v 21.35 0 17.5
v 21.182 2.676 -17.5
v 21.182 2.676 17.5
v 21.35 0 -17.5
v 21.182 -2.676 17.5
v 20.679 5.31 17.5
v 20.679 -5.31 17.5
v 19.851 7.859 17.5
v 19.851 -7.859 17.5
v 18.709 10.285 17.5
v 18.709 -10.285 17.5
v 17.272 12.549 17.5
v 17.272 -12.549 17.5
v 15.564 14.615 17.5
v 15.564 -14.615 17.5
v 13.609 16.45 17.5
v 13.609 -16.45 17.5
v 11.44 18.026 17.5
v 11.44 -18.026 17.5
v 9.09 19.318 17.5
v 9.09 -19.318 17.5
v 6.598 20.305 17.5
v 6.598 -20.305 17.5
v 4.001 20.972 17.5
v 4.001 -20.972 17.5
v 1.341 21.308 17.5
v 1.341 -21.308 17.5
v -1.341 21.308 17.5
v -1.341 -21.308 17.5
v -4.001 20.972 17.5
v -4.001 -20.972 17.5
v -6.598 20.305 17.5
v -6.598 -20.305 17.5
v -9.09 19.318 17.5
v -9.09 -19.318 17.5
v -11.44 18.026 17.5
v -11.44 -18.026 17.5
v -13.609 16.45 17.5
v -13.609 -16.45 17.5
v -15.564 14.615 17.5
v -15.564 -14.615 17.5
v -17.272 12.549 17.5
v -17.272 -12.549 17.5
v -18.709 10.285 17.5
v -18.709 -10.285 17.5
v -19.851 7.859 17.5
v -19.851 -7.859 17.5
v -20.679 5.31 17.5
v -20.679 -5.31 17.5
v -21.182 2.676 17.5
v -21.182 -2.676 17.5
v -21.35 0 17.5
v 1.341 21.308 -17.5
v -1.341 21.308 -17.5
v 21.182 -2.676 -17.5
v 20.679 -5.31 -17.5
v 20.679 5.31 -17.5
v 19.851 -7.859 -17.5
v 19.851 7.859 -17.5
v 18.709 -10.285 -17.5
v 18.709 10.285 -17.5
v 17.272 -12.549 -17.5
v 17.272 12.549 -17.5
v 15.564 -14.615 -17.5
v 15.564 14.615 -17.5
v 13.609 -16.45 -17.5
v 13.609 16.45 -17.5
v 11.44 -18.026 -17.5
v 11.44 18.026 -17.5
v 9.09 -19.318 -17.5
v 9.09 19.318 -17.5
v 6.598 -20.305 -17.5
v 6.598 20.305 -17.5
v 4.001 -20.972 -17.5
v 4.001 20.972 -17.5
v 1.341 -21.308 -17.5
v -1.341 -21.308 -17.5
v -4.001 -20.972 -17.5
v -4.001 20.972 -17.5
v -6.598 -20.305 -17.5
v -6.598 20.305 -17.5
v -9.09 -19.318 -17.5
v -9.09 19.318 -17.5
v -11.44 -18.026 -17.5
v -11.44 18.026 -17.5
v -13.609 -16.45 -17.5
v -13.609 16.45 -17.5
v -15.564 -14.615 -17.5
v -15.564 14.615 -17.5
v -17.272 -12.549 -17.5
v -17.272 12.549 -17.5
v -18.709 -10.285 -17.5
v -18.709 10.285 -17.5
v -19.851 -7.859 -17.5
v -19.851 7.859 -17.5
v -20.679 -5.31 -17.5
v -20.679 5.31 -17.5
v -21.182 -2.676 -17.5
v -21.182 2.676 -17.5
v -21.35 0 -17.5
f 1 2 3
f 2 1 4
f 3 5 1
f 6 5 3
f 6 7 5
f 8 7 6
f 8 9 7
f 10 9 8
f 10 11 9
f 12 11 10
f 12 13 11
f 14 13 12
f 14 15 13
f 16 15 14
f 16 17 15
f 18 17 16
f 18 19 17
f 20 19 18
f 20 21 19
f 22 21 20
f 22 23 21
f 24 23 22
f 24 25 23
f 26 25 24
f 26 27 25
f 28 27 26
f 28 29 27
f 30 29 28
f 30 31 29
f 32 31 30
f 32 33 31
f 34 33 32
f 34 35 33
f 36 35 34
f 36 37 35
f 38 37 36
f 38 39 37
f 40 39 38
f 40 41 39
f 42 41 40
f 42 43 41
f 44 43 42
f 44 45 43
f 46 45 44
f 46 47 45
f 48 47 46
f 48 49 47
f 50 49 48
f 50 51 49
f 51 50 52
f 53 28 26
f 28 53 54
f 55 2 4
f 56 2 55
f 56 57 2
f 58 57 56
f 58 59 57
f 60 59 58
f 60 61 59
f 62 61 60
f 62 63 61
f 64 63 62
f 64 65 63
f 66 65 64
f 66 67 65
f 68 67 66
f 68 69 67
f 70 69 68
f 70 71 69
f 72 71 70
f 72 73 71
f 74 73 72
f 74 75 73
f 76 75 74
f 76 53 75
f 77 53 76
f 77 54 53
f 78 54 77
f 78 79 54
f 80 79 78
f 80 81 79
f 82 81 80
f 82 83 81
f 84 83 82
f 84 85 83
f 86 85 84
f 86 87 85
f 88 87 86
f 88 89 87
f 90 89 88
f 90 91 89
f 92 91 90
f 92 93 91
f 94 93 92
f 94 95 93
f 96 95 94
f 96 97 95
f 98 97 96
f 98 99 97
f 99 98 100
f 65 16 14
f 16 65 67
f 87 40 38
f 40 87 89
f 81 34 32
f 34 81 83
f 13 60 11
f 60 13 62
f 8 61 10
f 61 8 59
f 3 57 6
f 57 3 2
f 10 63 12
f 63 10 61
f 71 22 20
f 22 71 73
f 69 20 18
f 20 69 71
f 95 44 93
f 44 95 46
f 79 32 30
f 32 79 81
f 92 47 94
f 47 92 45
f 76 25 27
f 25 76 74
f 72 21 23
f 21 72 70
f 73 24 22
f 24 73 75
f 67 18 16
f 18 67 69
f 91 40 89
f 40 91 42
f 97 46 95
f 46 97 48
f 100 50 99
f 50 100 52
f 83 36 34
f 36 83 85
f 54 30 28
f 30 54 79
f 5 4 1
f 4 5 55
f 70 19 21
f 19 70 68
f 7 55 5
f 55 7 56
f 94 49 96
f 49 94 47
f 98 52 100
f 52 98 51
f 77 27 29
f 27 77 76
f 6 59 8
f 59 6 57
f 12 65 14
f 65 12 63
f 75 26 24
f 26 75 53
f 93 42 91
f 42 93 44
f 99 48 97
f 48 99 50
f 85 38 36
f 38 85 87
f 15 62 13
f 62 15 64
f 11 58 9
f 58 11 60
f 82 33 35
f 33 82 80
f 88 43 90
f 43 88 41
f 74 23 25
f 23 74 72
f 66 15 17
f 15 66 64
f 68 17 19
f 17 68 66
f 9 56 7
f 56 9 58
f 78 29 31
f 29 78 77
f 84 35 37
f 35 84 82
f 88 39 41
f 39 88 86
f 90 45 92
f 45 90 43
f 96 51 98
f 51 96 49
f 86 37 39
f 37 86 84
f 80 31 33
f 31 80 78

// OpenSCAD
$fn = 50;


difference() {
	union() {
		translate(v = [0, 0, -17.5000000000]) {
			cylinder(h = 35, r = 21.3500000000);
		}
	}
	union() {
		translate(v = [0, 0, -100.0000000000]) {
			cylinder(h = 200, r = 0);
		}
	}
}
